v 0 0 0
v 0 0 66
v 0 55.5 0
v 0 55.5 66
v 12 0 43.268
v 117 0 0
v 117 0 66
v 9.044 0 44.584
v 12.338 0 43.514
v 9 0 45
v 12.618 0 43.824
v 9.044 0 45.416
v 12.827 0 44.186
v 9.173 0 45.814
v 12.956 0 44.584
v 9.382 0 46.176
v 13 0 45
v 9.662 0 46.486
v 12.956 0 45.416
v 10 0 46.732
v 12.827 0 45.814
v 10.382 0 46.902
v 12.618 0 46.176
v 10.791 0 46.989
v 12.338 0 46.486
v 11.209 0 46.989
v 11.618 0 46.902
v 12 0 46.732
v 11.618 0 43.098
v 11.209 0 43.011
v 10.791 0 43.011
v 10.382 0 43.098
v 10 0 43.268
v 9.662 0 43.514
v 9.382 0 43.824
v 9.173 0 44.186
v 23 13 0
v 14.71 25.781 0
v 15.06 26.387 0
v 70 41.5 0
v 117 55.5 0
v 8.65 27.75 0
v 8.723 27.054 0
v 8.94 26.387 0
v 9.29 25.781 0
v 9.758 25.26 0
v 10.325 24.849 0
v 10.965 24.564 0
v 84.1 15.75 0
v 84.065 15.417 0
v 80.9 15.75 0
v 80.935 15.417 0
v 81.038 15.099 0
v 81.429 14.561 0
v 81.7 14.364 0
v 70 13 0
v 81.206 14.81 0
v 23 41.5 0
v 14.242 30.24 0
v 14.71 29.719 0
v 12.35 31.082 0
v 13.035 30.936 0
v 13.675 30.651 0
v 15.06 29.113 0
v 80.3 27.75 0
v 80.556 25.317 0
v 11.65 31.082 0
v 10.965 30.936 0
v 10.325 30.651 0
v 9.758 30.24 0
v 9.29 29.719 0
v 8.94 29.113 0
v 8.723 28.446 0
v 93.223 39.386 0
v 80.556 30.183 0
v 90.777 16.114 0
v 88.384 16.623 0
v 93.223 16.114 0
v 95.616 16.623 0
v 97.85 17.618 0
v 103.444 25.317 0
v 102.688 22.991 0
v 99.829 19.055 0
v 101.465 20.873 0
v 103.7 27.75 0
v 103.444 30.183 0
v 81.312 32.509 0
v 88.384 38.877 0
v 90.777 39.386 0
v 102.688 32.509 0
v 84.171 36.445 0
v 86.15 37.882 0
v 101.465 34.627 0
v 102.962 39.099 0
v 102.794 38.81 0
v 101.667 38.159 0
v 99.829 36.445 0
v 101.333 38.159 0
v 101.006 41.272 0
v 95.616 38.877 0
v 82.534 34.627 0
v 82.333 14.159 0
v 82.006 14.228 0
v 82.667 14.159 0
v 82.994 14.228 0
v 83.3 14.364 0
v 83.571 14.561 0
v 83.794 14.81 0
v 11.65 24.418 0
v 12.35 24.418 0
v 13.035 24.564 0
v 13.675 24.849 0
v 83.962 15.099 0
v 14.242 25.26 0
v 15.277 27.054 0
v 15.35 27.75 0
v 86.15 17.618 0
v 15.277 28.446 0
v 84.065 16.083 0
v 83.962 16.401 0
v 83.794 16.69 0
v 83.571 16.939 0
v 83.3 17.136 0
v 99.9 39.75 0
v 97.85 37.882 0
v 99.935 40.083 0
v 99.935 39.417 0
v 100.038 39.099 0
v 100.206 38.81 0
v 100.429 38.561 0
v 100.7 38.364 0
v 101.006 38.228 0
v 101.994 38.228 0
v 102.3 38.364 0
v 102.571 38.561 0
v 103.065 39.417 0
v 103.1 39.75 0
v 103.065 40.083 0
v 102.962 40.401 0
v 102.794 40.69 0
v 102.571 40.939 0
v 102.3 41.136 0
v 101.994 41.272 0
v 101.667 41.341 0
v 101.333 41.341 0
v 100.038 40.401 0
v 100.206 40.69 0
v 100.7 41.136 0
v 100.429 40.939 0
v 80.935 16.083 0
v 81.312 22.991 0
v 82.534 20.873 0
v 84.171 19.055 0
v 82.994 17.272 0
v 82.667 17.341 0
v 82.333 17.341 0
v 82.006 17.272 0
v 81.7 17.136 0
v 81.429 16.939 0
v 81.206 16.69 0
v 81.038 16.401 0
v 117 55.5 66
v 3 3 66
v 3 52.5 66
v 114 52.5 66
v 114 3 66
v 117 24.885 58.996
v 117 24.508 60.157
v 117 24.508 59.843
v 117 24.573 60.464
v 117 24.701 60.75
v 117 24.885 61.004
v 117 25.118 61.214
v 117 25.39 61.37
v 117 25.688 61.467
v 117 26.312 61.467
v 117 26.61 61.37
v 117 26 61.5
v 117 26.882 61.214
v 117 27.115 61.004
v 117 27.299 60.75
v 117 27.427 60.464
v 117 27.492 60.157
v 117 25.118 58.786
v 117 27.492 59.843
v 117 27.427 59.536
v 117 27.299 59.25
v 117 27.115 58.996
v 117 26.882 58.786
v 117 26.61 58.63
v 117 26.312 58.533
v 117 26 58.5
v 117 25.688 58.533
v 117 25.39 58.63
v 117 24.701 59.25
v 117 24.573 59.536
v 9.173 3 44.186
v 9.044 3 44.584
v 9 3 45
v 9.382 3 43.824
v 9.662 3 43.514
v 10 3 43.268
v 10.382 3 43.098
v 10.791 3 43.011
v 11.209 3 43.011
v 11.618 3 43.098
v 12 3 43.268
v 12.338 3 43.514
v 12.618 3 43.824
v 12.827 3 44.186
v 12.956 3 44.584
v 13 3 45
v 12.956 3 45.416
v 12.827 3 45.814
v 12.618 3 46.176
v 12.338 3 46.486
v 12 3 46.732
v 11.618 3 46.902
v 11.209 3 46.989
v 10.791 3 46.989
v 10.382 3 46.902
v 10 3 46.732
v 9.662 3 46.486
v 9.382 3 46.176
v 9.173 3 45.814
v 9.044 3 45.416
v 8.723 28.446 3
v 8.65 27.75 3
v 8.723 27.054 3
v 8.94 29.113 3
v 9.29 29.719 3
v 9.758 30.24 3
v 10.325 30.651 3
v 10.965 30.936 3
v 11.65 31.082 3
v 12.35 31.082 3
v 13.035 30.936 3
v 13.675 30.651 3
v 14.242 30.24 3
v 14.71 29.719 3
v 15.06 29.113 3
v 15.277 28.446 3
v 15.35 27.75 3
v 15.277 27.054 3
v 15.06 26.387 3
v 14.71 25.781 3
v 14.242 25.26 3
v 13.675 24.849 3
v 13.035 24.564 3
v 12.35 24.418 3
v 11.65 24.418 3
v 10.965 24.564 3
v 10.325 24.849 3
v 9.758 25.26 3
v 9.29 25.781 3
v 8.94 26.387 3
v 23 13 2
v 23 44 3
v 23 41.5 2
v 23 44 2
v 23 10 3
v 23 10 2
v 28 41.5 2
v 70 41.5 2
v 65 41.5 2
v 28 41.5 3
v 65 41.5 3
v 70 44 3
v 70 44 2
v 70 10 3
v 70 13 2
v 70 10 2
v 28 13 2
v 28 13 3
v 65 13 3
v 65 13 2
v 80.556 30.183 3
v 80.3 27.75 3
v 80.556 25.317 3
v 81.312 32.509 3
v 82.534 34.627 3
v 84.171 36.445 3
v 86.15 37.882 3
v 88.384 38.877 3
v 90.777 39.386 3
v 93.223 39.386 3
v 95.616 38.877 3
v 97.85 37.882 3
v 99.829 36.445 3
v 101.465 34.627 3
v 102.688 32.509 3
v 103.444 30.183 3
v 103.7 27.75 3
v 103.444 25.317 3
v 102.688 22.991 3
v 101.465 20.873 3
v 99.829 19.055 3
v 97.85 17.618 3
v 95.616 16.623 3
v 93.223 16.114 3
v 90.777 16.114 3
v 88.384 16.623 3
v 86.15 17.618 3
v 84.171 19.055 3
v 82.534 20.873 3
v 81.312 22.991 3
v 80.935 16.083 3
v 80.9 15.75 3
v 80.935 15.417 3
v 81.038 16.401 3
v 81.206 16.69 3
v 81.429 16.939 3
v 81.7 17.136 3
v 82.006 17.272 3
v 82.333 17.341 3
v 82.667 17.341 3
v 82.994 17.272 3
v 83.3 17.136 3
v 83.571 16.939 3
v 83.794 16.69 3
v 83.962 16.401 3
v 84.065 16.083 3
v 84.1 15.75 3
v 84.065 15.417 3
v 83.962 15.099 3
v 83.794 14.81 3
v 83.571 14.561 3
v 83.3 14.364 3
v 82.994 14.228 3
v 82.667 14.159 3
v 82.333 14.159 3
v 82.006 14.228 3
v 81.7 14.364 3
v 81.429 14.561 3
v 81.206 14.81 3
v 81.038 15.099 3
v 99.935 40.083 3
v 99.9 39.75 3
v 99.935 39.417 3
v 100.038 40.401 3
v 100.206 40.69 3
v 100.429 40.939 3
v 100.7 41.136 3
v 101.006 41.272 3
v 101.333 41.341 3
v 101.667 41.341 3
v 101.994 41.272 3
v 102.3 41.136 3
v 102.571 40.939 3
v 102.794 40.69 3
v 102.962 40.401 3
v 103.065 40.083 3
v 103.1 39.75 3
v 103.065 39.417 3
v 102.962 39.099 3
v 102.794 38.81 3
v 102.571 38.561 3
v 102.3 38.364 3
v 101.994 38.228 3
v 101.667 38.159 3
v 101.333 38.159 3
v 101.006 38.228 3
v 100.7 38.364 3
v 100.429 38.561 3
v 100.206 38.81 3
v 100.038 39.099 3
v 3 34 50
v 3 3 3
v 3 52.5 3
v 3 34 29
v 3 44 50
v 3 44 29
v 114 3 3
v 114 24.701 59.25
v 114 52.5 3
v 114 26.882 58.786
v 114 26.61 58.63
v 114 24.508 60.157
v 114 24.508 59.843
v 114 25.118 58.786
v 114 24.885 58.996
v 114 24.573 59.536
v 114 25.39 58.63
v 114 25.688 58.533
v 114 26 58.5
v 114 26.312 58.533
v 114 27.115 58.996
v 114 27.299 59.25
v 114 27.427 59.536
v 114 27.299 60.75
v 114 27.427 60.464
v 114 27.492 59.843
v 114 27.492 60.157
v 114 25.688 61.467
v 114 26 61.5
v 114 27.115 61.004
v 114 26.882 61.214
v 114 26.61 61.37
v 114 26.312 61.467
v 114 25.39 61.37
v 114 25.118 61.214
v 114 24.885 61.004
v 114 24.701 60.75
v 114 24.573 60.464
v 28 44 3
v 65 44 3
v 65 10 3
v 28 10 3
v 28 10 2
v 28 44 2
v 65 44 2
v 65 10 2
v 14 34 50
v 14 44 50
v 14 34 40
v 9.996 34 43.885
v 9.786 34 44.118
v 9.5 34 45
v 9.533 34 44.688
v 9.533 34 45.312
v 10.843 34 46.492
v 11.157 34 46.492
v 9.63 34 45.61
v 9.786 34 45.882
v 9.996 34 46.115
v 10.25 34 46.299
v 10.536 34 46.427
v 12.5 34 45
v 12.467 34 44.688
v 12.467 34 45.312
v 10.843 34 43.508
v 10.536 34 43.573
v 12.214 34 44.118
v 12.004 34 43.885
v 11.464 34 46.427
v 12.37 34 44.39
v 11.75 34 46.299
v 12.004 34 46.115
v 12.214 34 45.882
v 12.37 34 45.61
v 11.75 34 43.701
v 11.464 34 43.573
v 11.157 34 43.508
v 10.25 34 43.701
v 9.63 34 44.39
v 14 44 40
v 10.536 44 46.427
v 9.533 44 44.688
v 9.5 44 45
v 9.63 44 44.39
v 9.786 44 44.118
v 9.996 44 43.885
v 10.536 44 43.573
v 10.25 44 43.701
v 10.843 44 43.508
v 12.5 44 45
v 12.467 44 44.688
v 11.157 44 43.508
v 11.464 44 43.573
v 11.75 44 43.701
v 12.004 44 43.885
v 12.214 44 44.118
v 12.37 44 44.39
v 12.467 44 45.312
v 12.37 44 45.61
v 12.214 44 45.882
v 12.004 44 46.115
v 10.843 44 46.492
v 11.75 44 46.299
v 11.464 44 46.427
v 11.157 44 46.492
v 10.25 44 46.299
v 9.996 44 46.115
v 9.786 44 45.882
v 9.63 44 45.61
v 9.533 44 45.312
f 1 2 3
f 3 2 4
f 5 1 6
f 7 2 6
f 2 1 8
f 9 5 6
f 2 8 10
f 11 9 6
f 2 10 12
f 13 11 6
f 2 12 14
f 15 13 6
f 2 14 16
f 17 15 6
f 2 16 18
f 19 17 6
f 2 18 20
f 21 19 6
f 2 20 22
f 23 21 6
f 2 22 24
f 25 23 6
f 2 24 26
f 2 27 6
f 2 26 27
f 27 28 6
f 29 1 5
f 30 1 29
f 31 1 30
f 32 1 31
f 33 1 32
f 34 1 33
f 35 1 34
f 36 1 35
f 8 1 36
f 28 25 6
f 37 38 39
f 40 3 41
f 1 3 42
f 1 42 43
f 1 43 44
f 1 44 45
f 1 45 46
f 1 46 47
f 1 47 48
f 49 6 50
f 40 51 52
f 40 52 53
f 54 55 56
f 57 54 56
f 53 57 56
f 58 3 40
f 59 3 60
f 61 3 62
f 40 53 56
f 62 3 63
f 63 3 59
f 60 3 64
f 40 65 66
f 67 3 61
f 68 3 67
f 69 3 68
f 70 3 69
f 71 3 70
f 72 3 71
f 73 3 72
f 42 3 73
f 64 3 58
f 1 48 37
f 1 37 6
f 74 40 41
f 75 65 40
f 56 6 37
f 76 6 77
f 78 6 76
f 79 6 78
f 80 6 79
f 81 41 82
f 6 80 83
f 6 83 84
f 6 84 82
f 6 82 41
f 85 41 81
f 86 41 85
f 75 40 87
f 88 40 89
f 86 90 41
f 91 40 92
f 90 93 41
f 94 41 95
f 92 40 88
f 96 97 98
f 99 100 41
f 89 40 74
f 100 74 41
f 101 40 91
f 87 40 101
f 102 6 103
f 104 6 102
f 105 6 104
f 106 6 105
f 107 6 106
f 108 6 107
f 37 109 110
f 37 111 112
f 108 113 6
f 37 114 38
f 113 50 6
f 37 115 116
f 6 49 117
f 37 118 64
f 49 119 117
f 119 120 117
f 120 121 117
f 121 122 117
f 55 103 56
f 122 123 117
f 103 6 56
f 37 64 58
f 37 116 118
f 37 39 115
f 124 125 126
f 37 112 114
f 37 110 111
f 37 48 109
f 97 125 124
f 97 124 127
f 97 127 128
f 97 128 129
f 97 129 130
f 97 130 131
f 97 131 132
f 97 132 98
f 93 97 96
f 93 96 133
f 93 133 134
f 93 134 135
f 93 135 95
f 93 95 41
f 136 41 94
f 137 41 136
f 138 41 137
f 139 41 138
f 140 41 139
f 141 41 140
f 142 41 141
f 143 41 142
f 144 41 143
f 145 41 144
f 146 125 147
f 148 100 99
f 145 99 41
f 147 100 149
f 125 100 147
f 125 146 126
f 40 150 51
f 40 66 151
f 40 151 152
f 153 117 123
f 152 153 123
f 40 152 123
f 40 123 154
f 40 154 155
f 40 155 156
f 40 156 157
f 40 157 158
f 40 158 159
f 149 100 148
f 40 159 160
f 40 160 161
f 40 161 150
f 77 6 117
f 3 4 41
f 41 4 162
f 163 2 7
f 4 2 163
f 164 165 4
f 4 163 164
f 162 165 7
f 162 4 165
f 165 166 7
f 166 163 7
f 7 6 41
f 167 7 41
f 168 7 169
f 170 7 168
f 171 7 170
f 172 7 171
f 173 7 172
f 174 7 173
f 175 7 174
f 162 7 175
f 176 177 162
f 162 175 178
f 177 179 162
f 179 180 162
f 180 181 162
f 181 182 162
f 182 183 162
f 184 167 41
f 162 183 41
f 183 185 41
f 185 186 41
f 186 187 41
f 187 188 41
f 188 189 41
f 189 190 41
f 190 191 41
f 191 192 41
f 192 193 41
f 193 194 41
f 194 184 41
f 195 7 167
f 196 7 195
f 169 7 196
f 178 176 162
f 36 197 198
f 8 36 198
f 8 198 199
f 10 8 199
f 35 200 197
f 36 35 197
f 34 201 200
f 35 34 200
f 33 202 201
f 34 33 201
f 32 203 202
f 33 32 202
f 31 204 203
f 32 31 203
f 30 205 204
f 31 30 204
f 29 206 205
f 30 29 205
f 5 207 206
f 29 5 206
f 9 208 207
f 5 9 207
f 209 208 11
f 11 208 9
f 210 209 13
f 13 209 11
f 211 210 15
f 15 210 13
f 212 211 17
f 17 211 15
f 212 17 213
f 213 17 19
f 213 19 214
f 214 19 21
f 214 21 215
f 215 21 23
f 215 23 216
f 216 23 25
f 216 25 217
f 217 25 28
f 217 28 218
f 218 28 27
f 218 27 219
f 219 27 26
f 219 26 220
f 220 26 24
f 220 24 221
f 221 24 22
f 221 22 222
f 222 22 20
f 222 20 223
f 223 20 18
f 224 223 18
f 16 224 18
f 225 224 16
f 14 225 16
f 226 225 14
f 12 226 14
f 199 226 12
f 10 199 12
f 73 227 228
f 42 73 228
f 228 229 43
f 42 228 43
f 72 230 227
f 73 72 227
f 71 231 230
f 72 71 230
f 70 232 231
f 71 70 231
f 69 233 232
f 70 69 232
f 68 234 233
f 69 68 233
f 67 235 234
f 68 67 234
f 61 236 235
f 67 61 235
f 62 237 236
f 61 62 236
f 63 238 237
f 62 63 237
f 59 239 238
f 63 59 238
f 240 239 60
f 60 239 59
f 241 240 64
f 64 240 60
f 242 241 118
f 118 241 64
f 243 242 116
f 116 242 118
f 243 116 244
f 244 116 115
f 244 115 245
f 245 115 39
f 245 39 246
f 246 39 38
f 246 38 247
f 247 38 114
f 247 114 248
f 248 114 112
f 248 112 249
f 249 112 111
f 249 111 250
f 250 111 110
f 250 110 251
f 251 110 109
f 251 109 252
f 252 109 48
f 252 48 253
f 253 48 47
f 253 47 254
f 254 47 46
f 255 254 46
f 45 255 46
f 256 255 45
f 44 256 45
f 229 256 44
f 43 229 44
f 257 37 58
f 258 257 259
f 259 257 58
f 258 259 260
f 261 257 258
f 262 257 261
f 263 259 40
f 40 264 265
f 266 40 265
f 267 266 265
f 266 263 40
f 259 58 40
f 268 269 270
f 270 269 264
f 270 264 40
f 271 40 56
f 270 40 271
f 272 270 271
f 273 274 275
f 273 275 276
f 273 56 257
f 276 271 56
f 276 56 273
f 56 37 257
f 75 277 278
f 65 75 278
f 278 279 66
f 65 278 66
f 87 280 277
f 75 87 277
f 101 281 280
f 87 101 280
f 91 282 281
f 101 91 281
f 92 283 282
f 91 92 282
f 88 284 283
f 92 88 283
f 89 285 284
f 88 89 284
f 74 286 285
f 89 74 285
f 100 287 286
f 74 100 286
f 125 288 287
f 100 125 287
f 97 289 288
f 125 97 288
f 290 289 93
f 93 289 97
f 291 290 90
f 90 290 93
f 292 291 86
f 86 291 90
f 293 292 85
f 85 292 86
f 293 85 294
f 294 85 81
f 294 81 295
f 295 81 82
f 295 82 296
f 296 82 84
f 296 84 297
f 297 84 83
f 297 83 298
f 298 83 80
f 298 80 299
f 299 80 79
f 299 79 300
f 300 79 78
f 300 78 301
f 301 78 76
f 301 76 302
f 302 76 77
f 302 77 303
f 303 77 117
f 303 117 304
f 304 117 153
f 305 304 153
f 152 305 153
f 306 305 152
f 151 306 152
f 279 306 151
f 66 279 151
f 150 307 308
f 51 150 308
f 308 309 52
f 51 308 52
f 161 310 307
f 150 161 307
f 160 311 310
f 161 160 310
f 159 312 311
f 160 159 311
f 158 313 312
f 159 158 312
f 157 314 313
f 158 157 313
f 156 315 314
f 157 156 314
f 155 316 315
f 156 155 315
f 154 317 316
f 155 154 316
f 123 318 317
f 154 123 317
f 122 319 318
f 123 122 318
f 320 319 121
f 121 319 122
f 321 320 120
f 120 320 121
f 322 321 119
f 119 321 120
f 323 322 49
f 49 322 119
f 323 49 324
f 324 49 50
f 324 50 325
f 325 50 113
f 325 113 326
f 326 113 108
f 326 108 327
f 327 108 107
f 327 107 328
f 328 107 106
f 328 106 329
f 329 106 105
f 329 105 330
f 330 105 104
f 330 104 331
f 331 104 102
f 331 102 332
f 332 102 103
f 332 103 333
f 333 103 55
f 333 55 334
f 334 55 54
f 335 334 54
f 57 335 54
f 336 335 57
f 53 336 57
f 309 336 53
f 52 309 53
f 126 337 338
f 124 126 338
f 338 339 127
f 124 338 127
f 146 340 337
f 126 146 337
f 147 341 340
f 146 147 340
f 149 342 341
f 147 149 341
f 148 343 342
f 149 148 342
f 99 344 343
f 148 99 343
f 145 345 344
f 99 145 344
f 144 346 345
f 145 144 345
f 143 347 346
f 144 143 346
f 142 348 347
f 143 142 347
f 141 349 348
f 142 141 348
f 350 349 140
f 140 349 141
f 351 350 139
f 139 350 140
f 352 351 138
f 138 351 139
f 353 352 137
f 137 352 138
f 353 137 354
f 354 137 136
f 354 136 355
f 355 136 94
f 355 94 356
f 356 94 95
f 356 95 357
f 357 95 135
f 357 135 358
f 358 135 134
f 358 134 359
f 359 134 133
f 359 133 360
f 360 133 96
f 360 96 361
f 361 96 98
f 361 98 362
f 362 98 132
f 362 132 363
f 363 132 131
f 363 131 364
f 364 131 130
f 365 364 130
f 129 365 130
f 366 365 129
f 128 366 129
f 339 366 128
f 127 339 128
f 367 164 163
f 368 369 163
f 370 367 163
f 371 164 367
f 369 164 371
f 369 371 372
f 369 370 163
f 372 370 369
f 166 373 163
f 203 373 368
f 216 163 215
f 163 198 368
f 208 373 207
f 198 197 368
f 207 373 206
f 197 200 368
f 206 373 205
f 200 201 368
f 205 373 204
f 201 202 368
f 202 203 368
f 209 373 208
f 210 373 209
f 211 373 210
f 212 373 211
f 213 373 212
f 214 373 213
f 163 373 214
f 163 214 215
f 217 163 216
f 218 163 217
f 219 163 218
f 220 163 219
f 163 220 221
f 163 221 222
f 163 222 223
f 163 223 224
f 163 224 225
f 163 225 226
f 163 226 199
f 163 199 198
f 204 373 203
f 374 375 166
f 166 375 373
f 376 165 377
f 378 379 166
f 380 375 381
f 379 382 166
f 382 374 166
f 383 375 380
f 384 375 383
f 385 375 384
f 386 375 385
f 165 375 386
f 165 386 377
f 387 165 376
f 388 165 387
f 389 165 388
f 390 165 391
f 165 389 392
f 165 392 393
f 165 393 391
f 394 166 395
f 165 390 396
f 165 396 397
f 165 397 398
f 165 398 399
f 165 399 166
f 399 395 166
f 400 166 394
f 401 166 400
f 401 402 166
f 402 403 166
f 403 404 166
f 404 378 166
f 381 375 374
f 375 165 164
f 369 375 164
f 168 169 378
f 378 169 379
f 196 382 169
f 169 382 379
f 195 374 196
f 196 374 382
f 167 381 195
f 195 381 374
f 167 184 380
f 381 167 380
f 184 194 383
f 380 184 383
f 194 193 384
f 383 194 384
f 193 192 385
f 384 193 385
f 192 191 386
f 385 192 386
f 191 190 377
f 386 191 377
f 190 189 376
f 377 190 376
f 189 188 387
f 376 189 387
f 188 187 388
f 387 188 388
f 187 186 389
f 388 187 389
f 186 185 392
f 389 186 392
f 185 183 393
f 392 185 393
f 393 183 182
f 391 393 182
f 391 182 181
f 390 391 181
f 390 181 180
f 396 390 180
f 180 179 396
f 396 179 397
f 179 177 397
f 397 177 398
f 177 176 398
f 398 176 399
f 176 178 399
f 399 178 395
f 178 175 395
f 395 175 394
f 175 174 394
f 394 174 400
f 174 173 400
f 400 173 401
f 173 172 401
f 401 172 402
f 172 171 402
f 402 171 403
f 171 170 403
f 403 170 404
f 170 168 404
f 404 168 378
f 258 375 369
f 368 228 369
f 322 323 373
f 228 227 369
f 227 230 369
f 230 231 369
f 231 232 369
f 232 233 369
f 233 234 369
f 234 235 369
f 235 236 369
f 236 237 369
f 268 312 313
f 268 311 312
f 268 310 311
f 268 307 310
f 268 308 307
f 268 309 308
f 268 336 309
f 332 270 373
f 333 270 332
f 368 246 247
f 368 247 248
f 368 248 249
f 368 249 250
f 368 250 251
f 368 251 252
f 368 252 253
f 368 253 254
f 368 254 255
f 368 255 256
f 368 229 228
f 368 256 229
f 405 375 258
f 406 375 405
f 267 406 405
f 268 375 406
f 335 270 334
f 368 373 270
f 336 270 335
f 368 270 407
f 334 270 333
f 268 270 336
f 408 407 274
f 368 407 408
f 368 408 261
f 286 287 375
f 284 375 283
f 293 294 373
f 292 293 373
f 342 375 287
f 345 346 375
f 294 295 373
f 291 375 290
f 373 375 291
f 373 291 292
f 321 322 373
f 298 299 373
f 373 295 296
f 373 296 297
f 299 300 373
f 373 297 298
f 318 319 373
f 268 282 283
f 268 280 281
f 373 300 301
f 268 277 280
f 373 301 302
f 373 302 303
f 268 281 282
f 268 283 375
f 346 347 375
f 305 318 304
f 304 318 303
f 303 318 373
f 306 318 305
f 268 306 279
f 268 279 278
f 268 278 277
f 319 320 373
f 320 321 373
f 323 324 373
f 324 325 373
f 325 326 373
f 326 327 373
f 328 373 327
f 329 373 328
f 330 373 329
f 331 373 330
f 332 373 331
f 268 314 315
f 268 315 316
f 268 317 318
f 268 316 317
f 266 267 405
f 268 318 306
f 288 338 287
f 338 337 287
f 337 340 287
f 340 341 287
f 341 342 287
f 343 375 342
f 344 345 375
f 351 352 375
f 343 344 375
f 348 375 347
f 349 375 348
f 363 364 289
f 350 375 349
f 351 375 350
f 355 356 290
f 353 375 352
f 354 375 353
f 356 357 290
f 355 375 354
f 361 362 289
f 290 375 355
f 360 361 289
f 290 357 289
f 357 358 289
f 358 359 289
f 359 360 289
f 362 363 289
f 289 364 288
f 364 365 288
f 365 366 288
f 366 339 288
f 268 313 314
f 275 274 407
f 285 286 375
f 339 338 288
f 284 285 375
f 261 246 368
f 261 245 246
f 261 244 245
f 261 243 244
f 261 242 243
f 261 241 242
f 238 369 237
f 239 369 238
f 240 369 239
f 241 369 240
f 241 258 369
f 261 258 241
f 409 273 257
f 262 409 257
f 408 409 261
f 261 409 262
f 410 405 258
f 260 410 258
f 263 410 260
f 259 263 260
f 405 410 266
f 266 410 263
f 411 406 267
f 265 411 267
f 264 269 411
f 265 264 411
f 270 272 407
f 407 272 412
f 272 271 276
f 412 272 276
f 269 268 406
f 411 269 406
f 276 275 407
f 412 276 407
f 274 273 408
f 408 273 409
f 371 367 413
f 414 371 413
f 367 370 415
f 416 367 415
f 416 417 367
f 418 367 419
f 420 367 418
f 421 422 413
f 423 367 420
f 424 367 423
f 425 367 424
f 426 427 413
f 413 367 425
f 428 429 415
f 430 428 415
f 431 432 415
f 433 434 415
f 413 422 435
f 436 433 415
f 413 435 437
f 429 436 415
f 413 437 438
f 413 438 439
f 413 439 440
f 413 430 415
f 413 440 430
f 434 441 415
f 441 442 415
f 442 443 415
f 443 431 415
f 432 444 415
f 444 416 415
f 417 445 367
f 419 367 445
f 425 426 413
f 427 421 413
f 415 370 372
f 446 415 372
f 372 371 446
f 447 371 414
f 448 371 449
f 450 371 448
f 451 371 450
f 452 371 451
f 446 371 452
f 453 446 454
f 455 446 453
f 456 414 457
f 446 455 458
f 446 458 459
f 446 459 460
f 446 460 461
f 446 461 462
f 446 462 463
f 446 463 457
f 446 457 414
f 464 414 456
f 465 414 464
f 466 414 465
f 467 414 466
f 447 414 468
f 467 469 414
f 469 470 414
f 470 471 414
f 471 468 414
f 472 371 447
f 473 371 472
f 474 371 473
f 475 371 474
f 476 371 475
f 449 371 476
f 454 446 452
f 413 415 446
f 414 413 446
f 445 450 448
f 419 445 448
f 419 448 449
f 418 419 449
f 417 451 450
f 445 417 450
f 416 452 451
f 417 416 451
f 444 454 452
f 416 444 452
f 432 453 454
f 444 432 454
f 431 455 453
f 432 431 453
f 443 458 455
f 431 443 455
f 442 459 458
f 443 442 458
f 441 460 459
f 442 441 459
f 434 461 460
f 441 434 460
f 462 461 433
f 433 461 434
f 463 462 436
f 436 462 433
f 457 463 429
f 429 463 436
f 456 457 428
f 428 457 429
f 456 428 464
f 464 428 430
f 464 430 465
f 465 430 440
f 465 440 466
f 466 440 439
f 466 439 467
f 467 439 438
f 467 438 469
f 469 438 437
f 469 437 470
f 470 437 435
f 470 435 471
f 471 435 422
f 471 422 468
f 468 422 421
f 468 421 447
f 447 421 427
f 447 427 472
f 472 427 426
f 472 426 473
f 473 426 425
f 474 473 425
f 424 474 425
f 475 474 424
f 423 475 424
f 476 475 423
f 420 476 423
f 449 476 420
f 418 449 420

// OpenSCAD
// Main box
difference()
{
	cube([117,55.5,66]);		// box outside12
	translate([3,3,3]) 
	{	cube([111,49.5,63]);	// box inside
	};
	translate([23,13,0])
	{	cube([47,28.5,3]);		// cutout for IEC socket
	};
	translate([23,10,2])
	{	cube([5,34,1]);			// recess for socket clip
	};
	translate([23+42,10,2])
	{	cube([5,34,1]);			// recess for socket clip
	};
	translate([113,26,60])
	{
		rotate([0,90,0])
		{
			cylinder(h=5,r=1.5,$fs=0.1);	// side hole
		};
	};
	translate([11,-1,45])
	{	rotate([-90,0,0])
		{
			cylinder(h=5,r=2,$fs=0.1);		// front hole to access inside screw
		}
	};
	translate([12,27.75,0]) { cylinder(r=3.35,h=3,$fs=0.1); };
	translate([92,27.75,0]) { cylinder(r=11.7,h=3,$fs=0.1); };
	translate([92-9.5,27.75-12,0]) { cylinder(r=1.6,h=3,$fs=0.1); };
	translate([92+9.5,27.75+12,0]) { cylinder(r=1.6,h=3,$fs=0.1); };
};

// Cube to hold insde screw
difference()
{
	translate([3,34,40])
	{
		cube([11,10,10]);
	};
	translate([11,33,45])
	{
		rotate([-90,0,0])
		{
			cylinder(h=12,r=1.5,$fs=0.1);
		};
	};
};

// Wedge to suppot cube
polyhedron
(	points=[[3,34,29],[3,34,40],
			[14,34,40],[3,44,29],
			[3,44,40],[14,44,40]],
	triangles=[[0,1,2],[3,5,4],[0,3,1],[1,3,4],
			[0,2,3],[3,2,5],[1,4,5],[1,5,2]]
);
